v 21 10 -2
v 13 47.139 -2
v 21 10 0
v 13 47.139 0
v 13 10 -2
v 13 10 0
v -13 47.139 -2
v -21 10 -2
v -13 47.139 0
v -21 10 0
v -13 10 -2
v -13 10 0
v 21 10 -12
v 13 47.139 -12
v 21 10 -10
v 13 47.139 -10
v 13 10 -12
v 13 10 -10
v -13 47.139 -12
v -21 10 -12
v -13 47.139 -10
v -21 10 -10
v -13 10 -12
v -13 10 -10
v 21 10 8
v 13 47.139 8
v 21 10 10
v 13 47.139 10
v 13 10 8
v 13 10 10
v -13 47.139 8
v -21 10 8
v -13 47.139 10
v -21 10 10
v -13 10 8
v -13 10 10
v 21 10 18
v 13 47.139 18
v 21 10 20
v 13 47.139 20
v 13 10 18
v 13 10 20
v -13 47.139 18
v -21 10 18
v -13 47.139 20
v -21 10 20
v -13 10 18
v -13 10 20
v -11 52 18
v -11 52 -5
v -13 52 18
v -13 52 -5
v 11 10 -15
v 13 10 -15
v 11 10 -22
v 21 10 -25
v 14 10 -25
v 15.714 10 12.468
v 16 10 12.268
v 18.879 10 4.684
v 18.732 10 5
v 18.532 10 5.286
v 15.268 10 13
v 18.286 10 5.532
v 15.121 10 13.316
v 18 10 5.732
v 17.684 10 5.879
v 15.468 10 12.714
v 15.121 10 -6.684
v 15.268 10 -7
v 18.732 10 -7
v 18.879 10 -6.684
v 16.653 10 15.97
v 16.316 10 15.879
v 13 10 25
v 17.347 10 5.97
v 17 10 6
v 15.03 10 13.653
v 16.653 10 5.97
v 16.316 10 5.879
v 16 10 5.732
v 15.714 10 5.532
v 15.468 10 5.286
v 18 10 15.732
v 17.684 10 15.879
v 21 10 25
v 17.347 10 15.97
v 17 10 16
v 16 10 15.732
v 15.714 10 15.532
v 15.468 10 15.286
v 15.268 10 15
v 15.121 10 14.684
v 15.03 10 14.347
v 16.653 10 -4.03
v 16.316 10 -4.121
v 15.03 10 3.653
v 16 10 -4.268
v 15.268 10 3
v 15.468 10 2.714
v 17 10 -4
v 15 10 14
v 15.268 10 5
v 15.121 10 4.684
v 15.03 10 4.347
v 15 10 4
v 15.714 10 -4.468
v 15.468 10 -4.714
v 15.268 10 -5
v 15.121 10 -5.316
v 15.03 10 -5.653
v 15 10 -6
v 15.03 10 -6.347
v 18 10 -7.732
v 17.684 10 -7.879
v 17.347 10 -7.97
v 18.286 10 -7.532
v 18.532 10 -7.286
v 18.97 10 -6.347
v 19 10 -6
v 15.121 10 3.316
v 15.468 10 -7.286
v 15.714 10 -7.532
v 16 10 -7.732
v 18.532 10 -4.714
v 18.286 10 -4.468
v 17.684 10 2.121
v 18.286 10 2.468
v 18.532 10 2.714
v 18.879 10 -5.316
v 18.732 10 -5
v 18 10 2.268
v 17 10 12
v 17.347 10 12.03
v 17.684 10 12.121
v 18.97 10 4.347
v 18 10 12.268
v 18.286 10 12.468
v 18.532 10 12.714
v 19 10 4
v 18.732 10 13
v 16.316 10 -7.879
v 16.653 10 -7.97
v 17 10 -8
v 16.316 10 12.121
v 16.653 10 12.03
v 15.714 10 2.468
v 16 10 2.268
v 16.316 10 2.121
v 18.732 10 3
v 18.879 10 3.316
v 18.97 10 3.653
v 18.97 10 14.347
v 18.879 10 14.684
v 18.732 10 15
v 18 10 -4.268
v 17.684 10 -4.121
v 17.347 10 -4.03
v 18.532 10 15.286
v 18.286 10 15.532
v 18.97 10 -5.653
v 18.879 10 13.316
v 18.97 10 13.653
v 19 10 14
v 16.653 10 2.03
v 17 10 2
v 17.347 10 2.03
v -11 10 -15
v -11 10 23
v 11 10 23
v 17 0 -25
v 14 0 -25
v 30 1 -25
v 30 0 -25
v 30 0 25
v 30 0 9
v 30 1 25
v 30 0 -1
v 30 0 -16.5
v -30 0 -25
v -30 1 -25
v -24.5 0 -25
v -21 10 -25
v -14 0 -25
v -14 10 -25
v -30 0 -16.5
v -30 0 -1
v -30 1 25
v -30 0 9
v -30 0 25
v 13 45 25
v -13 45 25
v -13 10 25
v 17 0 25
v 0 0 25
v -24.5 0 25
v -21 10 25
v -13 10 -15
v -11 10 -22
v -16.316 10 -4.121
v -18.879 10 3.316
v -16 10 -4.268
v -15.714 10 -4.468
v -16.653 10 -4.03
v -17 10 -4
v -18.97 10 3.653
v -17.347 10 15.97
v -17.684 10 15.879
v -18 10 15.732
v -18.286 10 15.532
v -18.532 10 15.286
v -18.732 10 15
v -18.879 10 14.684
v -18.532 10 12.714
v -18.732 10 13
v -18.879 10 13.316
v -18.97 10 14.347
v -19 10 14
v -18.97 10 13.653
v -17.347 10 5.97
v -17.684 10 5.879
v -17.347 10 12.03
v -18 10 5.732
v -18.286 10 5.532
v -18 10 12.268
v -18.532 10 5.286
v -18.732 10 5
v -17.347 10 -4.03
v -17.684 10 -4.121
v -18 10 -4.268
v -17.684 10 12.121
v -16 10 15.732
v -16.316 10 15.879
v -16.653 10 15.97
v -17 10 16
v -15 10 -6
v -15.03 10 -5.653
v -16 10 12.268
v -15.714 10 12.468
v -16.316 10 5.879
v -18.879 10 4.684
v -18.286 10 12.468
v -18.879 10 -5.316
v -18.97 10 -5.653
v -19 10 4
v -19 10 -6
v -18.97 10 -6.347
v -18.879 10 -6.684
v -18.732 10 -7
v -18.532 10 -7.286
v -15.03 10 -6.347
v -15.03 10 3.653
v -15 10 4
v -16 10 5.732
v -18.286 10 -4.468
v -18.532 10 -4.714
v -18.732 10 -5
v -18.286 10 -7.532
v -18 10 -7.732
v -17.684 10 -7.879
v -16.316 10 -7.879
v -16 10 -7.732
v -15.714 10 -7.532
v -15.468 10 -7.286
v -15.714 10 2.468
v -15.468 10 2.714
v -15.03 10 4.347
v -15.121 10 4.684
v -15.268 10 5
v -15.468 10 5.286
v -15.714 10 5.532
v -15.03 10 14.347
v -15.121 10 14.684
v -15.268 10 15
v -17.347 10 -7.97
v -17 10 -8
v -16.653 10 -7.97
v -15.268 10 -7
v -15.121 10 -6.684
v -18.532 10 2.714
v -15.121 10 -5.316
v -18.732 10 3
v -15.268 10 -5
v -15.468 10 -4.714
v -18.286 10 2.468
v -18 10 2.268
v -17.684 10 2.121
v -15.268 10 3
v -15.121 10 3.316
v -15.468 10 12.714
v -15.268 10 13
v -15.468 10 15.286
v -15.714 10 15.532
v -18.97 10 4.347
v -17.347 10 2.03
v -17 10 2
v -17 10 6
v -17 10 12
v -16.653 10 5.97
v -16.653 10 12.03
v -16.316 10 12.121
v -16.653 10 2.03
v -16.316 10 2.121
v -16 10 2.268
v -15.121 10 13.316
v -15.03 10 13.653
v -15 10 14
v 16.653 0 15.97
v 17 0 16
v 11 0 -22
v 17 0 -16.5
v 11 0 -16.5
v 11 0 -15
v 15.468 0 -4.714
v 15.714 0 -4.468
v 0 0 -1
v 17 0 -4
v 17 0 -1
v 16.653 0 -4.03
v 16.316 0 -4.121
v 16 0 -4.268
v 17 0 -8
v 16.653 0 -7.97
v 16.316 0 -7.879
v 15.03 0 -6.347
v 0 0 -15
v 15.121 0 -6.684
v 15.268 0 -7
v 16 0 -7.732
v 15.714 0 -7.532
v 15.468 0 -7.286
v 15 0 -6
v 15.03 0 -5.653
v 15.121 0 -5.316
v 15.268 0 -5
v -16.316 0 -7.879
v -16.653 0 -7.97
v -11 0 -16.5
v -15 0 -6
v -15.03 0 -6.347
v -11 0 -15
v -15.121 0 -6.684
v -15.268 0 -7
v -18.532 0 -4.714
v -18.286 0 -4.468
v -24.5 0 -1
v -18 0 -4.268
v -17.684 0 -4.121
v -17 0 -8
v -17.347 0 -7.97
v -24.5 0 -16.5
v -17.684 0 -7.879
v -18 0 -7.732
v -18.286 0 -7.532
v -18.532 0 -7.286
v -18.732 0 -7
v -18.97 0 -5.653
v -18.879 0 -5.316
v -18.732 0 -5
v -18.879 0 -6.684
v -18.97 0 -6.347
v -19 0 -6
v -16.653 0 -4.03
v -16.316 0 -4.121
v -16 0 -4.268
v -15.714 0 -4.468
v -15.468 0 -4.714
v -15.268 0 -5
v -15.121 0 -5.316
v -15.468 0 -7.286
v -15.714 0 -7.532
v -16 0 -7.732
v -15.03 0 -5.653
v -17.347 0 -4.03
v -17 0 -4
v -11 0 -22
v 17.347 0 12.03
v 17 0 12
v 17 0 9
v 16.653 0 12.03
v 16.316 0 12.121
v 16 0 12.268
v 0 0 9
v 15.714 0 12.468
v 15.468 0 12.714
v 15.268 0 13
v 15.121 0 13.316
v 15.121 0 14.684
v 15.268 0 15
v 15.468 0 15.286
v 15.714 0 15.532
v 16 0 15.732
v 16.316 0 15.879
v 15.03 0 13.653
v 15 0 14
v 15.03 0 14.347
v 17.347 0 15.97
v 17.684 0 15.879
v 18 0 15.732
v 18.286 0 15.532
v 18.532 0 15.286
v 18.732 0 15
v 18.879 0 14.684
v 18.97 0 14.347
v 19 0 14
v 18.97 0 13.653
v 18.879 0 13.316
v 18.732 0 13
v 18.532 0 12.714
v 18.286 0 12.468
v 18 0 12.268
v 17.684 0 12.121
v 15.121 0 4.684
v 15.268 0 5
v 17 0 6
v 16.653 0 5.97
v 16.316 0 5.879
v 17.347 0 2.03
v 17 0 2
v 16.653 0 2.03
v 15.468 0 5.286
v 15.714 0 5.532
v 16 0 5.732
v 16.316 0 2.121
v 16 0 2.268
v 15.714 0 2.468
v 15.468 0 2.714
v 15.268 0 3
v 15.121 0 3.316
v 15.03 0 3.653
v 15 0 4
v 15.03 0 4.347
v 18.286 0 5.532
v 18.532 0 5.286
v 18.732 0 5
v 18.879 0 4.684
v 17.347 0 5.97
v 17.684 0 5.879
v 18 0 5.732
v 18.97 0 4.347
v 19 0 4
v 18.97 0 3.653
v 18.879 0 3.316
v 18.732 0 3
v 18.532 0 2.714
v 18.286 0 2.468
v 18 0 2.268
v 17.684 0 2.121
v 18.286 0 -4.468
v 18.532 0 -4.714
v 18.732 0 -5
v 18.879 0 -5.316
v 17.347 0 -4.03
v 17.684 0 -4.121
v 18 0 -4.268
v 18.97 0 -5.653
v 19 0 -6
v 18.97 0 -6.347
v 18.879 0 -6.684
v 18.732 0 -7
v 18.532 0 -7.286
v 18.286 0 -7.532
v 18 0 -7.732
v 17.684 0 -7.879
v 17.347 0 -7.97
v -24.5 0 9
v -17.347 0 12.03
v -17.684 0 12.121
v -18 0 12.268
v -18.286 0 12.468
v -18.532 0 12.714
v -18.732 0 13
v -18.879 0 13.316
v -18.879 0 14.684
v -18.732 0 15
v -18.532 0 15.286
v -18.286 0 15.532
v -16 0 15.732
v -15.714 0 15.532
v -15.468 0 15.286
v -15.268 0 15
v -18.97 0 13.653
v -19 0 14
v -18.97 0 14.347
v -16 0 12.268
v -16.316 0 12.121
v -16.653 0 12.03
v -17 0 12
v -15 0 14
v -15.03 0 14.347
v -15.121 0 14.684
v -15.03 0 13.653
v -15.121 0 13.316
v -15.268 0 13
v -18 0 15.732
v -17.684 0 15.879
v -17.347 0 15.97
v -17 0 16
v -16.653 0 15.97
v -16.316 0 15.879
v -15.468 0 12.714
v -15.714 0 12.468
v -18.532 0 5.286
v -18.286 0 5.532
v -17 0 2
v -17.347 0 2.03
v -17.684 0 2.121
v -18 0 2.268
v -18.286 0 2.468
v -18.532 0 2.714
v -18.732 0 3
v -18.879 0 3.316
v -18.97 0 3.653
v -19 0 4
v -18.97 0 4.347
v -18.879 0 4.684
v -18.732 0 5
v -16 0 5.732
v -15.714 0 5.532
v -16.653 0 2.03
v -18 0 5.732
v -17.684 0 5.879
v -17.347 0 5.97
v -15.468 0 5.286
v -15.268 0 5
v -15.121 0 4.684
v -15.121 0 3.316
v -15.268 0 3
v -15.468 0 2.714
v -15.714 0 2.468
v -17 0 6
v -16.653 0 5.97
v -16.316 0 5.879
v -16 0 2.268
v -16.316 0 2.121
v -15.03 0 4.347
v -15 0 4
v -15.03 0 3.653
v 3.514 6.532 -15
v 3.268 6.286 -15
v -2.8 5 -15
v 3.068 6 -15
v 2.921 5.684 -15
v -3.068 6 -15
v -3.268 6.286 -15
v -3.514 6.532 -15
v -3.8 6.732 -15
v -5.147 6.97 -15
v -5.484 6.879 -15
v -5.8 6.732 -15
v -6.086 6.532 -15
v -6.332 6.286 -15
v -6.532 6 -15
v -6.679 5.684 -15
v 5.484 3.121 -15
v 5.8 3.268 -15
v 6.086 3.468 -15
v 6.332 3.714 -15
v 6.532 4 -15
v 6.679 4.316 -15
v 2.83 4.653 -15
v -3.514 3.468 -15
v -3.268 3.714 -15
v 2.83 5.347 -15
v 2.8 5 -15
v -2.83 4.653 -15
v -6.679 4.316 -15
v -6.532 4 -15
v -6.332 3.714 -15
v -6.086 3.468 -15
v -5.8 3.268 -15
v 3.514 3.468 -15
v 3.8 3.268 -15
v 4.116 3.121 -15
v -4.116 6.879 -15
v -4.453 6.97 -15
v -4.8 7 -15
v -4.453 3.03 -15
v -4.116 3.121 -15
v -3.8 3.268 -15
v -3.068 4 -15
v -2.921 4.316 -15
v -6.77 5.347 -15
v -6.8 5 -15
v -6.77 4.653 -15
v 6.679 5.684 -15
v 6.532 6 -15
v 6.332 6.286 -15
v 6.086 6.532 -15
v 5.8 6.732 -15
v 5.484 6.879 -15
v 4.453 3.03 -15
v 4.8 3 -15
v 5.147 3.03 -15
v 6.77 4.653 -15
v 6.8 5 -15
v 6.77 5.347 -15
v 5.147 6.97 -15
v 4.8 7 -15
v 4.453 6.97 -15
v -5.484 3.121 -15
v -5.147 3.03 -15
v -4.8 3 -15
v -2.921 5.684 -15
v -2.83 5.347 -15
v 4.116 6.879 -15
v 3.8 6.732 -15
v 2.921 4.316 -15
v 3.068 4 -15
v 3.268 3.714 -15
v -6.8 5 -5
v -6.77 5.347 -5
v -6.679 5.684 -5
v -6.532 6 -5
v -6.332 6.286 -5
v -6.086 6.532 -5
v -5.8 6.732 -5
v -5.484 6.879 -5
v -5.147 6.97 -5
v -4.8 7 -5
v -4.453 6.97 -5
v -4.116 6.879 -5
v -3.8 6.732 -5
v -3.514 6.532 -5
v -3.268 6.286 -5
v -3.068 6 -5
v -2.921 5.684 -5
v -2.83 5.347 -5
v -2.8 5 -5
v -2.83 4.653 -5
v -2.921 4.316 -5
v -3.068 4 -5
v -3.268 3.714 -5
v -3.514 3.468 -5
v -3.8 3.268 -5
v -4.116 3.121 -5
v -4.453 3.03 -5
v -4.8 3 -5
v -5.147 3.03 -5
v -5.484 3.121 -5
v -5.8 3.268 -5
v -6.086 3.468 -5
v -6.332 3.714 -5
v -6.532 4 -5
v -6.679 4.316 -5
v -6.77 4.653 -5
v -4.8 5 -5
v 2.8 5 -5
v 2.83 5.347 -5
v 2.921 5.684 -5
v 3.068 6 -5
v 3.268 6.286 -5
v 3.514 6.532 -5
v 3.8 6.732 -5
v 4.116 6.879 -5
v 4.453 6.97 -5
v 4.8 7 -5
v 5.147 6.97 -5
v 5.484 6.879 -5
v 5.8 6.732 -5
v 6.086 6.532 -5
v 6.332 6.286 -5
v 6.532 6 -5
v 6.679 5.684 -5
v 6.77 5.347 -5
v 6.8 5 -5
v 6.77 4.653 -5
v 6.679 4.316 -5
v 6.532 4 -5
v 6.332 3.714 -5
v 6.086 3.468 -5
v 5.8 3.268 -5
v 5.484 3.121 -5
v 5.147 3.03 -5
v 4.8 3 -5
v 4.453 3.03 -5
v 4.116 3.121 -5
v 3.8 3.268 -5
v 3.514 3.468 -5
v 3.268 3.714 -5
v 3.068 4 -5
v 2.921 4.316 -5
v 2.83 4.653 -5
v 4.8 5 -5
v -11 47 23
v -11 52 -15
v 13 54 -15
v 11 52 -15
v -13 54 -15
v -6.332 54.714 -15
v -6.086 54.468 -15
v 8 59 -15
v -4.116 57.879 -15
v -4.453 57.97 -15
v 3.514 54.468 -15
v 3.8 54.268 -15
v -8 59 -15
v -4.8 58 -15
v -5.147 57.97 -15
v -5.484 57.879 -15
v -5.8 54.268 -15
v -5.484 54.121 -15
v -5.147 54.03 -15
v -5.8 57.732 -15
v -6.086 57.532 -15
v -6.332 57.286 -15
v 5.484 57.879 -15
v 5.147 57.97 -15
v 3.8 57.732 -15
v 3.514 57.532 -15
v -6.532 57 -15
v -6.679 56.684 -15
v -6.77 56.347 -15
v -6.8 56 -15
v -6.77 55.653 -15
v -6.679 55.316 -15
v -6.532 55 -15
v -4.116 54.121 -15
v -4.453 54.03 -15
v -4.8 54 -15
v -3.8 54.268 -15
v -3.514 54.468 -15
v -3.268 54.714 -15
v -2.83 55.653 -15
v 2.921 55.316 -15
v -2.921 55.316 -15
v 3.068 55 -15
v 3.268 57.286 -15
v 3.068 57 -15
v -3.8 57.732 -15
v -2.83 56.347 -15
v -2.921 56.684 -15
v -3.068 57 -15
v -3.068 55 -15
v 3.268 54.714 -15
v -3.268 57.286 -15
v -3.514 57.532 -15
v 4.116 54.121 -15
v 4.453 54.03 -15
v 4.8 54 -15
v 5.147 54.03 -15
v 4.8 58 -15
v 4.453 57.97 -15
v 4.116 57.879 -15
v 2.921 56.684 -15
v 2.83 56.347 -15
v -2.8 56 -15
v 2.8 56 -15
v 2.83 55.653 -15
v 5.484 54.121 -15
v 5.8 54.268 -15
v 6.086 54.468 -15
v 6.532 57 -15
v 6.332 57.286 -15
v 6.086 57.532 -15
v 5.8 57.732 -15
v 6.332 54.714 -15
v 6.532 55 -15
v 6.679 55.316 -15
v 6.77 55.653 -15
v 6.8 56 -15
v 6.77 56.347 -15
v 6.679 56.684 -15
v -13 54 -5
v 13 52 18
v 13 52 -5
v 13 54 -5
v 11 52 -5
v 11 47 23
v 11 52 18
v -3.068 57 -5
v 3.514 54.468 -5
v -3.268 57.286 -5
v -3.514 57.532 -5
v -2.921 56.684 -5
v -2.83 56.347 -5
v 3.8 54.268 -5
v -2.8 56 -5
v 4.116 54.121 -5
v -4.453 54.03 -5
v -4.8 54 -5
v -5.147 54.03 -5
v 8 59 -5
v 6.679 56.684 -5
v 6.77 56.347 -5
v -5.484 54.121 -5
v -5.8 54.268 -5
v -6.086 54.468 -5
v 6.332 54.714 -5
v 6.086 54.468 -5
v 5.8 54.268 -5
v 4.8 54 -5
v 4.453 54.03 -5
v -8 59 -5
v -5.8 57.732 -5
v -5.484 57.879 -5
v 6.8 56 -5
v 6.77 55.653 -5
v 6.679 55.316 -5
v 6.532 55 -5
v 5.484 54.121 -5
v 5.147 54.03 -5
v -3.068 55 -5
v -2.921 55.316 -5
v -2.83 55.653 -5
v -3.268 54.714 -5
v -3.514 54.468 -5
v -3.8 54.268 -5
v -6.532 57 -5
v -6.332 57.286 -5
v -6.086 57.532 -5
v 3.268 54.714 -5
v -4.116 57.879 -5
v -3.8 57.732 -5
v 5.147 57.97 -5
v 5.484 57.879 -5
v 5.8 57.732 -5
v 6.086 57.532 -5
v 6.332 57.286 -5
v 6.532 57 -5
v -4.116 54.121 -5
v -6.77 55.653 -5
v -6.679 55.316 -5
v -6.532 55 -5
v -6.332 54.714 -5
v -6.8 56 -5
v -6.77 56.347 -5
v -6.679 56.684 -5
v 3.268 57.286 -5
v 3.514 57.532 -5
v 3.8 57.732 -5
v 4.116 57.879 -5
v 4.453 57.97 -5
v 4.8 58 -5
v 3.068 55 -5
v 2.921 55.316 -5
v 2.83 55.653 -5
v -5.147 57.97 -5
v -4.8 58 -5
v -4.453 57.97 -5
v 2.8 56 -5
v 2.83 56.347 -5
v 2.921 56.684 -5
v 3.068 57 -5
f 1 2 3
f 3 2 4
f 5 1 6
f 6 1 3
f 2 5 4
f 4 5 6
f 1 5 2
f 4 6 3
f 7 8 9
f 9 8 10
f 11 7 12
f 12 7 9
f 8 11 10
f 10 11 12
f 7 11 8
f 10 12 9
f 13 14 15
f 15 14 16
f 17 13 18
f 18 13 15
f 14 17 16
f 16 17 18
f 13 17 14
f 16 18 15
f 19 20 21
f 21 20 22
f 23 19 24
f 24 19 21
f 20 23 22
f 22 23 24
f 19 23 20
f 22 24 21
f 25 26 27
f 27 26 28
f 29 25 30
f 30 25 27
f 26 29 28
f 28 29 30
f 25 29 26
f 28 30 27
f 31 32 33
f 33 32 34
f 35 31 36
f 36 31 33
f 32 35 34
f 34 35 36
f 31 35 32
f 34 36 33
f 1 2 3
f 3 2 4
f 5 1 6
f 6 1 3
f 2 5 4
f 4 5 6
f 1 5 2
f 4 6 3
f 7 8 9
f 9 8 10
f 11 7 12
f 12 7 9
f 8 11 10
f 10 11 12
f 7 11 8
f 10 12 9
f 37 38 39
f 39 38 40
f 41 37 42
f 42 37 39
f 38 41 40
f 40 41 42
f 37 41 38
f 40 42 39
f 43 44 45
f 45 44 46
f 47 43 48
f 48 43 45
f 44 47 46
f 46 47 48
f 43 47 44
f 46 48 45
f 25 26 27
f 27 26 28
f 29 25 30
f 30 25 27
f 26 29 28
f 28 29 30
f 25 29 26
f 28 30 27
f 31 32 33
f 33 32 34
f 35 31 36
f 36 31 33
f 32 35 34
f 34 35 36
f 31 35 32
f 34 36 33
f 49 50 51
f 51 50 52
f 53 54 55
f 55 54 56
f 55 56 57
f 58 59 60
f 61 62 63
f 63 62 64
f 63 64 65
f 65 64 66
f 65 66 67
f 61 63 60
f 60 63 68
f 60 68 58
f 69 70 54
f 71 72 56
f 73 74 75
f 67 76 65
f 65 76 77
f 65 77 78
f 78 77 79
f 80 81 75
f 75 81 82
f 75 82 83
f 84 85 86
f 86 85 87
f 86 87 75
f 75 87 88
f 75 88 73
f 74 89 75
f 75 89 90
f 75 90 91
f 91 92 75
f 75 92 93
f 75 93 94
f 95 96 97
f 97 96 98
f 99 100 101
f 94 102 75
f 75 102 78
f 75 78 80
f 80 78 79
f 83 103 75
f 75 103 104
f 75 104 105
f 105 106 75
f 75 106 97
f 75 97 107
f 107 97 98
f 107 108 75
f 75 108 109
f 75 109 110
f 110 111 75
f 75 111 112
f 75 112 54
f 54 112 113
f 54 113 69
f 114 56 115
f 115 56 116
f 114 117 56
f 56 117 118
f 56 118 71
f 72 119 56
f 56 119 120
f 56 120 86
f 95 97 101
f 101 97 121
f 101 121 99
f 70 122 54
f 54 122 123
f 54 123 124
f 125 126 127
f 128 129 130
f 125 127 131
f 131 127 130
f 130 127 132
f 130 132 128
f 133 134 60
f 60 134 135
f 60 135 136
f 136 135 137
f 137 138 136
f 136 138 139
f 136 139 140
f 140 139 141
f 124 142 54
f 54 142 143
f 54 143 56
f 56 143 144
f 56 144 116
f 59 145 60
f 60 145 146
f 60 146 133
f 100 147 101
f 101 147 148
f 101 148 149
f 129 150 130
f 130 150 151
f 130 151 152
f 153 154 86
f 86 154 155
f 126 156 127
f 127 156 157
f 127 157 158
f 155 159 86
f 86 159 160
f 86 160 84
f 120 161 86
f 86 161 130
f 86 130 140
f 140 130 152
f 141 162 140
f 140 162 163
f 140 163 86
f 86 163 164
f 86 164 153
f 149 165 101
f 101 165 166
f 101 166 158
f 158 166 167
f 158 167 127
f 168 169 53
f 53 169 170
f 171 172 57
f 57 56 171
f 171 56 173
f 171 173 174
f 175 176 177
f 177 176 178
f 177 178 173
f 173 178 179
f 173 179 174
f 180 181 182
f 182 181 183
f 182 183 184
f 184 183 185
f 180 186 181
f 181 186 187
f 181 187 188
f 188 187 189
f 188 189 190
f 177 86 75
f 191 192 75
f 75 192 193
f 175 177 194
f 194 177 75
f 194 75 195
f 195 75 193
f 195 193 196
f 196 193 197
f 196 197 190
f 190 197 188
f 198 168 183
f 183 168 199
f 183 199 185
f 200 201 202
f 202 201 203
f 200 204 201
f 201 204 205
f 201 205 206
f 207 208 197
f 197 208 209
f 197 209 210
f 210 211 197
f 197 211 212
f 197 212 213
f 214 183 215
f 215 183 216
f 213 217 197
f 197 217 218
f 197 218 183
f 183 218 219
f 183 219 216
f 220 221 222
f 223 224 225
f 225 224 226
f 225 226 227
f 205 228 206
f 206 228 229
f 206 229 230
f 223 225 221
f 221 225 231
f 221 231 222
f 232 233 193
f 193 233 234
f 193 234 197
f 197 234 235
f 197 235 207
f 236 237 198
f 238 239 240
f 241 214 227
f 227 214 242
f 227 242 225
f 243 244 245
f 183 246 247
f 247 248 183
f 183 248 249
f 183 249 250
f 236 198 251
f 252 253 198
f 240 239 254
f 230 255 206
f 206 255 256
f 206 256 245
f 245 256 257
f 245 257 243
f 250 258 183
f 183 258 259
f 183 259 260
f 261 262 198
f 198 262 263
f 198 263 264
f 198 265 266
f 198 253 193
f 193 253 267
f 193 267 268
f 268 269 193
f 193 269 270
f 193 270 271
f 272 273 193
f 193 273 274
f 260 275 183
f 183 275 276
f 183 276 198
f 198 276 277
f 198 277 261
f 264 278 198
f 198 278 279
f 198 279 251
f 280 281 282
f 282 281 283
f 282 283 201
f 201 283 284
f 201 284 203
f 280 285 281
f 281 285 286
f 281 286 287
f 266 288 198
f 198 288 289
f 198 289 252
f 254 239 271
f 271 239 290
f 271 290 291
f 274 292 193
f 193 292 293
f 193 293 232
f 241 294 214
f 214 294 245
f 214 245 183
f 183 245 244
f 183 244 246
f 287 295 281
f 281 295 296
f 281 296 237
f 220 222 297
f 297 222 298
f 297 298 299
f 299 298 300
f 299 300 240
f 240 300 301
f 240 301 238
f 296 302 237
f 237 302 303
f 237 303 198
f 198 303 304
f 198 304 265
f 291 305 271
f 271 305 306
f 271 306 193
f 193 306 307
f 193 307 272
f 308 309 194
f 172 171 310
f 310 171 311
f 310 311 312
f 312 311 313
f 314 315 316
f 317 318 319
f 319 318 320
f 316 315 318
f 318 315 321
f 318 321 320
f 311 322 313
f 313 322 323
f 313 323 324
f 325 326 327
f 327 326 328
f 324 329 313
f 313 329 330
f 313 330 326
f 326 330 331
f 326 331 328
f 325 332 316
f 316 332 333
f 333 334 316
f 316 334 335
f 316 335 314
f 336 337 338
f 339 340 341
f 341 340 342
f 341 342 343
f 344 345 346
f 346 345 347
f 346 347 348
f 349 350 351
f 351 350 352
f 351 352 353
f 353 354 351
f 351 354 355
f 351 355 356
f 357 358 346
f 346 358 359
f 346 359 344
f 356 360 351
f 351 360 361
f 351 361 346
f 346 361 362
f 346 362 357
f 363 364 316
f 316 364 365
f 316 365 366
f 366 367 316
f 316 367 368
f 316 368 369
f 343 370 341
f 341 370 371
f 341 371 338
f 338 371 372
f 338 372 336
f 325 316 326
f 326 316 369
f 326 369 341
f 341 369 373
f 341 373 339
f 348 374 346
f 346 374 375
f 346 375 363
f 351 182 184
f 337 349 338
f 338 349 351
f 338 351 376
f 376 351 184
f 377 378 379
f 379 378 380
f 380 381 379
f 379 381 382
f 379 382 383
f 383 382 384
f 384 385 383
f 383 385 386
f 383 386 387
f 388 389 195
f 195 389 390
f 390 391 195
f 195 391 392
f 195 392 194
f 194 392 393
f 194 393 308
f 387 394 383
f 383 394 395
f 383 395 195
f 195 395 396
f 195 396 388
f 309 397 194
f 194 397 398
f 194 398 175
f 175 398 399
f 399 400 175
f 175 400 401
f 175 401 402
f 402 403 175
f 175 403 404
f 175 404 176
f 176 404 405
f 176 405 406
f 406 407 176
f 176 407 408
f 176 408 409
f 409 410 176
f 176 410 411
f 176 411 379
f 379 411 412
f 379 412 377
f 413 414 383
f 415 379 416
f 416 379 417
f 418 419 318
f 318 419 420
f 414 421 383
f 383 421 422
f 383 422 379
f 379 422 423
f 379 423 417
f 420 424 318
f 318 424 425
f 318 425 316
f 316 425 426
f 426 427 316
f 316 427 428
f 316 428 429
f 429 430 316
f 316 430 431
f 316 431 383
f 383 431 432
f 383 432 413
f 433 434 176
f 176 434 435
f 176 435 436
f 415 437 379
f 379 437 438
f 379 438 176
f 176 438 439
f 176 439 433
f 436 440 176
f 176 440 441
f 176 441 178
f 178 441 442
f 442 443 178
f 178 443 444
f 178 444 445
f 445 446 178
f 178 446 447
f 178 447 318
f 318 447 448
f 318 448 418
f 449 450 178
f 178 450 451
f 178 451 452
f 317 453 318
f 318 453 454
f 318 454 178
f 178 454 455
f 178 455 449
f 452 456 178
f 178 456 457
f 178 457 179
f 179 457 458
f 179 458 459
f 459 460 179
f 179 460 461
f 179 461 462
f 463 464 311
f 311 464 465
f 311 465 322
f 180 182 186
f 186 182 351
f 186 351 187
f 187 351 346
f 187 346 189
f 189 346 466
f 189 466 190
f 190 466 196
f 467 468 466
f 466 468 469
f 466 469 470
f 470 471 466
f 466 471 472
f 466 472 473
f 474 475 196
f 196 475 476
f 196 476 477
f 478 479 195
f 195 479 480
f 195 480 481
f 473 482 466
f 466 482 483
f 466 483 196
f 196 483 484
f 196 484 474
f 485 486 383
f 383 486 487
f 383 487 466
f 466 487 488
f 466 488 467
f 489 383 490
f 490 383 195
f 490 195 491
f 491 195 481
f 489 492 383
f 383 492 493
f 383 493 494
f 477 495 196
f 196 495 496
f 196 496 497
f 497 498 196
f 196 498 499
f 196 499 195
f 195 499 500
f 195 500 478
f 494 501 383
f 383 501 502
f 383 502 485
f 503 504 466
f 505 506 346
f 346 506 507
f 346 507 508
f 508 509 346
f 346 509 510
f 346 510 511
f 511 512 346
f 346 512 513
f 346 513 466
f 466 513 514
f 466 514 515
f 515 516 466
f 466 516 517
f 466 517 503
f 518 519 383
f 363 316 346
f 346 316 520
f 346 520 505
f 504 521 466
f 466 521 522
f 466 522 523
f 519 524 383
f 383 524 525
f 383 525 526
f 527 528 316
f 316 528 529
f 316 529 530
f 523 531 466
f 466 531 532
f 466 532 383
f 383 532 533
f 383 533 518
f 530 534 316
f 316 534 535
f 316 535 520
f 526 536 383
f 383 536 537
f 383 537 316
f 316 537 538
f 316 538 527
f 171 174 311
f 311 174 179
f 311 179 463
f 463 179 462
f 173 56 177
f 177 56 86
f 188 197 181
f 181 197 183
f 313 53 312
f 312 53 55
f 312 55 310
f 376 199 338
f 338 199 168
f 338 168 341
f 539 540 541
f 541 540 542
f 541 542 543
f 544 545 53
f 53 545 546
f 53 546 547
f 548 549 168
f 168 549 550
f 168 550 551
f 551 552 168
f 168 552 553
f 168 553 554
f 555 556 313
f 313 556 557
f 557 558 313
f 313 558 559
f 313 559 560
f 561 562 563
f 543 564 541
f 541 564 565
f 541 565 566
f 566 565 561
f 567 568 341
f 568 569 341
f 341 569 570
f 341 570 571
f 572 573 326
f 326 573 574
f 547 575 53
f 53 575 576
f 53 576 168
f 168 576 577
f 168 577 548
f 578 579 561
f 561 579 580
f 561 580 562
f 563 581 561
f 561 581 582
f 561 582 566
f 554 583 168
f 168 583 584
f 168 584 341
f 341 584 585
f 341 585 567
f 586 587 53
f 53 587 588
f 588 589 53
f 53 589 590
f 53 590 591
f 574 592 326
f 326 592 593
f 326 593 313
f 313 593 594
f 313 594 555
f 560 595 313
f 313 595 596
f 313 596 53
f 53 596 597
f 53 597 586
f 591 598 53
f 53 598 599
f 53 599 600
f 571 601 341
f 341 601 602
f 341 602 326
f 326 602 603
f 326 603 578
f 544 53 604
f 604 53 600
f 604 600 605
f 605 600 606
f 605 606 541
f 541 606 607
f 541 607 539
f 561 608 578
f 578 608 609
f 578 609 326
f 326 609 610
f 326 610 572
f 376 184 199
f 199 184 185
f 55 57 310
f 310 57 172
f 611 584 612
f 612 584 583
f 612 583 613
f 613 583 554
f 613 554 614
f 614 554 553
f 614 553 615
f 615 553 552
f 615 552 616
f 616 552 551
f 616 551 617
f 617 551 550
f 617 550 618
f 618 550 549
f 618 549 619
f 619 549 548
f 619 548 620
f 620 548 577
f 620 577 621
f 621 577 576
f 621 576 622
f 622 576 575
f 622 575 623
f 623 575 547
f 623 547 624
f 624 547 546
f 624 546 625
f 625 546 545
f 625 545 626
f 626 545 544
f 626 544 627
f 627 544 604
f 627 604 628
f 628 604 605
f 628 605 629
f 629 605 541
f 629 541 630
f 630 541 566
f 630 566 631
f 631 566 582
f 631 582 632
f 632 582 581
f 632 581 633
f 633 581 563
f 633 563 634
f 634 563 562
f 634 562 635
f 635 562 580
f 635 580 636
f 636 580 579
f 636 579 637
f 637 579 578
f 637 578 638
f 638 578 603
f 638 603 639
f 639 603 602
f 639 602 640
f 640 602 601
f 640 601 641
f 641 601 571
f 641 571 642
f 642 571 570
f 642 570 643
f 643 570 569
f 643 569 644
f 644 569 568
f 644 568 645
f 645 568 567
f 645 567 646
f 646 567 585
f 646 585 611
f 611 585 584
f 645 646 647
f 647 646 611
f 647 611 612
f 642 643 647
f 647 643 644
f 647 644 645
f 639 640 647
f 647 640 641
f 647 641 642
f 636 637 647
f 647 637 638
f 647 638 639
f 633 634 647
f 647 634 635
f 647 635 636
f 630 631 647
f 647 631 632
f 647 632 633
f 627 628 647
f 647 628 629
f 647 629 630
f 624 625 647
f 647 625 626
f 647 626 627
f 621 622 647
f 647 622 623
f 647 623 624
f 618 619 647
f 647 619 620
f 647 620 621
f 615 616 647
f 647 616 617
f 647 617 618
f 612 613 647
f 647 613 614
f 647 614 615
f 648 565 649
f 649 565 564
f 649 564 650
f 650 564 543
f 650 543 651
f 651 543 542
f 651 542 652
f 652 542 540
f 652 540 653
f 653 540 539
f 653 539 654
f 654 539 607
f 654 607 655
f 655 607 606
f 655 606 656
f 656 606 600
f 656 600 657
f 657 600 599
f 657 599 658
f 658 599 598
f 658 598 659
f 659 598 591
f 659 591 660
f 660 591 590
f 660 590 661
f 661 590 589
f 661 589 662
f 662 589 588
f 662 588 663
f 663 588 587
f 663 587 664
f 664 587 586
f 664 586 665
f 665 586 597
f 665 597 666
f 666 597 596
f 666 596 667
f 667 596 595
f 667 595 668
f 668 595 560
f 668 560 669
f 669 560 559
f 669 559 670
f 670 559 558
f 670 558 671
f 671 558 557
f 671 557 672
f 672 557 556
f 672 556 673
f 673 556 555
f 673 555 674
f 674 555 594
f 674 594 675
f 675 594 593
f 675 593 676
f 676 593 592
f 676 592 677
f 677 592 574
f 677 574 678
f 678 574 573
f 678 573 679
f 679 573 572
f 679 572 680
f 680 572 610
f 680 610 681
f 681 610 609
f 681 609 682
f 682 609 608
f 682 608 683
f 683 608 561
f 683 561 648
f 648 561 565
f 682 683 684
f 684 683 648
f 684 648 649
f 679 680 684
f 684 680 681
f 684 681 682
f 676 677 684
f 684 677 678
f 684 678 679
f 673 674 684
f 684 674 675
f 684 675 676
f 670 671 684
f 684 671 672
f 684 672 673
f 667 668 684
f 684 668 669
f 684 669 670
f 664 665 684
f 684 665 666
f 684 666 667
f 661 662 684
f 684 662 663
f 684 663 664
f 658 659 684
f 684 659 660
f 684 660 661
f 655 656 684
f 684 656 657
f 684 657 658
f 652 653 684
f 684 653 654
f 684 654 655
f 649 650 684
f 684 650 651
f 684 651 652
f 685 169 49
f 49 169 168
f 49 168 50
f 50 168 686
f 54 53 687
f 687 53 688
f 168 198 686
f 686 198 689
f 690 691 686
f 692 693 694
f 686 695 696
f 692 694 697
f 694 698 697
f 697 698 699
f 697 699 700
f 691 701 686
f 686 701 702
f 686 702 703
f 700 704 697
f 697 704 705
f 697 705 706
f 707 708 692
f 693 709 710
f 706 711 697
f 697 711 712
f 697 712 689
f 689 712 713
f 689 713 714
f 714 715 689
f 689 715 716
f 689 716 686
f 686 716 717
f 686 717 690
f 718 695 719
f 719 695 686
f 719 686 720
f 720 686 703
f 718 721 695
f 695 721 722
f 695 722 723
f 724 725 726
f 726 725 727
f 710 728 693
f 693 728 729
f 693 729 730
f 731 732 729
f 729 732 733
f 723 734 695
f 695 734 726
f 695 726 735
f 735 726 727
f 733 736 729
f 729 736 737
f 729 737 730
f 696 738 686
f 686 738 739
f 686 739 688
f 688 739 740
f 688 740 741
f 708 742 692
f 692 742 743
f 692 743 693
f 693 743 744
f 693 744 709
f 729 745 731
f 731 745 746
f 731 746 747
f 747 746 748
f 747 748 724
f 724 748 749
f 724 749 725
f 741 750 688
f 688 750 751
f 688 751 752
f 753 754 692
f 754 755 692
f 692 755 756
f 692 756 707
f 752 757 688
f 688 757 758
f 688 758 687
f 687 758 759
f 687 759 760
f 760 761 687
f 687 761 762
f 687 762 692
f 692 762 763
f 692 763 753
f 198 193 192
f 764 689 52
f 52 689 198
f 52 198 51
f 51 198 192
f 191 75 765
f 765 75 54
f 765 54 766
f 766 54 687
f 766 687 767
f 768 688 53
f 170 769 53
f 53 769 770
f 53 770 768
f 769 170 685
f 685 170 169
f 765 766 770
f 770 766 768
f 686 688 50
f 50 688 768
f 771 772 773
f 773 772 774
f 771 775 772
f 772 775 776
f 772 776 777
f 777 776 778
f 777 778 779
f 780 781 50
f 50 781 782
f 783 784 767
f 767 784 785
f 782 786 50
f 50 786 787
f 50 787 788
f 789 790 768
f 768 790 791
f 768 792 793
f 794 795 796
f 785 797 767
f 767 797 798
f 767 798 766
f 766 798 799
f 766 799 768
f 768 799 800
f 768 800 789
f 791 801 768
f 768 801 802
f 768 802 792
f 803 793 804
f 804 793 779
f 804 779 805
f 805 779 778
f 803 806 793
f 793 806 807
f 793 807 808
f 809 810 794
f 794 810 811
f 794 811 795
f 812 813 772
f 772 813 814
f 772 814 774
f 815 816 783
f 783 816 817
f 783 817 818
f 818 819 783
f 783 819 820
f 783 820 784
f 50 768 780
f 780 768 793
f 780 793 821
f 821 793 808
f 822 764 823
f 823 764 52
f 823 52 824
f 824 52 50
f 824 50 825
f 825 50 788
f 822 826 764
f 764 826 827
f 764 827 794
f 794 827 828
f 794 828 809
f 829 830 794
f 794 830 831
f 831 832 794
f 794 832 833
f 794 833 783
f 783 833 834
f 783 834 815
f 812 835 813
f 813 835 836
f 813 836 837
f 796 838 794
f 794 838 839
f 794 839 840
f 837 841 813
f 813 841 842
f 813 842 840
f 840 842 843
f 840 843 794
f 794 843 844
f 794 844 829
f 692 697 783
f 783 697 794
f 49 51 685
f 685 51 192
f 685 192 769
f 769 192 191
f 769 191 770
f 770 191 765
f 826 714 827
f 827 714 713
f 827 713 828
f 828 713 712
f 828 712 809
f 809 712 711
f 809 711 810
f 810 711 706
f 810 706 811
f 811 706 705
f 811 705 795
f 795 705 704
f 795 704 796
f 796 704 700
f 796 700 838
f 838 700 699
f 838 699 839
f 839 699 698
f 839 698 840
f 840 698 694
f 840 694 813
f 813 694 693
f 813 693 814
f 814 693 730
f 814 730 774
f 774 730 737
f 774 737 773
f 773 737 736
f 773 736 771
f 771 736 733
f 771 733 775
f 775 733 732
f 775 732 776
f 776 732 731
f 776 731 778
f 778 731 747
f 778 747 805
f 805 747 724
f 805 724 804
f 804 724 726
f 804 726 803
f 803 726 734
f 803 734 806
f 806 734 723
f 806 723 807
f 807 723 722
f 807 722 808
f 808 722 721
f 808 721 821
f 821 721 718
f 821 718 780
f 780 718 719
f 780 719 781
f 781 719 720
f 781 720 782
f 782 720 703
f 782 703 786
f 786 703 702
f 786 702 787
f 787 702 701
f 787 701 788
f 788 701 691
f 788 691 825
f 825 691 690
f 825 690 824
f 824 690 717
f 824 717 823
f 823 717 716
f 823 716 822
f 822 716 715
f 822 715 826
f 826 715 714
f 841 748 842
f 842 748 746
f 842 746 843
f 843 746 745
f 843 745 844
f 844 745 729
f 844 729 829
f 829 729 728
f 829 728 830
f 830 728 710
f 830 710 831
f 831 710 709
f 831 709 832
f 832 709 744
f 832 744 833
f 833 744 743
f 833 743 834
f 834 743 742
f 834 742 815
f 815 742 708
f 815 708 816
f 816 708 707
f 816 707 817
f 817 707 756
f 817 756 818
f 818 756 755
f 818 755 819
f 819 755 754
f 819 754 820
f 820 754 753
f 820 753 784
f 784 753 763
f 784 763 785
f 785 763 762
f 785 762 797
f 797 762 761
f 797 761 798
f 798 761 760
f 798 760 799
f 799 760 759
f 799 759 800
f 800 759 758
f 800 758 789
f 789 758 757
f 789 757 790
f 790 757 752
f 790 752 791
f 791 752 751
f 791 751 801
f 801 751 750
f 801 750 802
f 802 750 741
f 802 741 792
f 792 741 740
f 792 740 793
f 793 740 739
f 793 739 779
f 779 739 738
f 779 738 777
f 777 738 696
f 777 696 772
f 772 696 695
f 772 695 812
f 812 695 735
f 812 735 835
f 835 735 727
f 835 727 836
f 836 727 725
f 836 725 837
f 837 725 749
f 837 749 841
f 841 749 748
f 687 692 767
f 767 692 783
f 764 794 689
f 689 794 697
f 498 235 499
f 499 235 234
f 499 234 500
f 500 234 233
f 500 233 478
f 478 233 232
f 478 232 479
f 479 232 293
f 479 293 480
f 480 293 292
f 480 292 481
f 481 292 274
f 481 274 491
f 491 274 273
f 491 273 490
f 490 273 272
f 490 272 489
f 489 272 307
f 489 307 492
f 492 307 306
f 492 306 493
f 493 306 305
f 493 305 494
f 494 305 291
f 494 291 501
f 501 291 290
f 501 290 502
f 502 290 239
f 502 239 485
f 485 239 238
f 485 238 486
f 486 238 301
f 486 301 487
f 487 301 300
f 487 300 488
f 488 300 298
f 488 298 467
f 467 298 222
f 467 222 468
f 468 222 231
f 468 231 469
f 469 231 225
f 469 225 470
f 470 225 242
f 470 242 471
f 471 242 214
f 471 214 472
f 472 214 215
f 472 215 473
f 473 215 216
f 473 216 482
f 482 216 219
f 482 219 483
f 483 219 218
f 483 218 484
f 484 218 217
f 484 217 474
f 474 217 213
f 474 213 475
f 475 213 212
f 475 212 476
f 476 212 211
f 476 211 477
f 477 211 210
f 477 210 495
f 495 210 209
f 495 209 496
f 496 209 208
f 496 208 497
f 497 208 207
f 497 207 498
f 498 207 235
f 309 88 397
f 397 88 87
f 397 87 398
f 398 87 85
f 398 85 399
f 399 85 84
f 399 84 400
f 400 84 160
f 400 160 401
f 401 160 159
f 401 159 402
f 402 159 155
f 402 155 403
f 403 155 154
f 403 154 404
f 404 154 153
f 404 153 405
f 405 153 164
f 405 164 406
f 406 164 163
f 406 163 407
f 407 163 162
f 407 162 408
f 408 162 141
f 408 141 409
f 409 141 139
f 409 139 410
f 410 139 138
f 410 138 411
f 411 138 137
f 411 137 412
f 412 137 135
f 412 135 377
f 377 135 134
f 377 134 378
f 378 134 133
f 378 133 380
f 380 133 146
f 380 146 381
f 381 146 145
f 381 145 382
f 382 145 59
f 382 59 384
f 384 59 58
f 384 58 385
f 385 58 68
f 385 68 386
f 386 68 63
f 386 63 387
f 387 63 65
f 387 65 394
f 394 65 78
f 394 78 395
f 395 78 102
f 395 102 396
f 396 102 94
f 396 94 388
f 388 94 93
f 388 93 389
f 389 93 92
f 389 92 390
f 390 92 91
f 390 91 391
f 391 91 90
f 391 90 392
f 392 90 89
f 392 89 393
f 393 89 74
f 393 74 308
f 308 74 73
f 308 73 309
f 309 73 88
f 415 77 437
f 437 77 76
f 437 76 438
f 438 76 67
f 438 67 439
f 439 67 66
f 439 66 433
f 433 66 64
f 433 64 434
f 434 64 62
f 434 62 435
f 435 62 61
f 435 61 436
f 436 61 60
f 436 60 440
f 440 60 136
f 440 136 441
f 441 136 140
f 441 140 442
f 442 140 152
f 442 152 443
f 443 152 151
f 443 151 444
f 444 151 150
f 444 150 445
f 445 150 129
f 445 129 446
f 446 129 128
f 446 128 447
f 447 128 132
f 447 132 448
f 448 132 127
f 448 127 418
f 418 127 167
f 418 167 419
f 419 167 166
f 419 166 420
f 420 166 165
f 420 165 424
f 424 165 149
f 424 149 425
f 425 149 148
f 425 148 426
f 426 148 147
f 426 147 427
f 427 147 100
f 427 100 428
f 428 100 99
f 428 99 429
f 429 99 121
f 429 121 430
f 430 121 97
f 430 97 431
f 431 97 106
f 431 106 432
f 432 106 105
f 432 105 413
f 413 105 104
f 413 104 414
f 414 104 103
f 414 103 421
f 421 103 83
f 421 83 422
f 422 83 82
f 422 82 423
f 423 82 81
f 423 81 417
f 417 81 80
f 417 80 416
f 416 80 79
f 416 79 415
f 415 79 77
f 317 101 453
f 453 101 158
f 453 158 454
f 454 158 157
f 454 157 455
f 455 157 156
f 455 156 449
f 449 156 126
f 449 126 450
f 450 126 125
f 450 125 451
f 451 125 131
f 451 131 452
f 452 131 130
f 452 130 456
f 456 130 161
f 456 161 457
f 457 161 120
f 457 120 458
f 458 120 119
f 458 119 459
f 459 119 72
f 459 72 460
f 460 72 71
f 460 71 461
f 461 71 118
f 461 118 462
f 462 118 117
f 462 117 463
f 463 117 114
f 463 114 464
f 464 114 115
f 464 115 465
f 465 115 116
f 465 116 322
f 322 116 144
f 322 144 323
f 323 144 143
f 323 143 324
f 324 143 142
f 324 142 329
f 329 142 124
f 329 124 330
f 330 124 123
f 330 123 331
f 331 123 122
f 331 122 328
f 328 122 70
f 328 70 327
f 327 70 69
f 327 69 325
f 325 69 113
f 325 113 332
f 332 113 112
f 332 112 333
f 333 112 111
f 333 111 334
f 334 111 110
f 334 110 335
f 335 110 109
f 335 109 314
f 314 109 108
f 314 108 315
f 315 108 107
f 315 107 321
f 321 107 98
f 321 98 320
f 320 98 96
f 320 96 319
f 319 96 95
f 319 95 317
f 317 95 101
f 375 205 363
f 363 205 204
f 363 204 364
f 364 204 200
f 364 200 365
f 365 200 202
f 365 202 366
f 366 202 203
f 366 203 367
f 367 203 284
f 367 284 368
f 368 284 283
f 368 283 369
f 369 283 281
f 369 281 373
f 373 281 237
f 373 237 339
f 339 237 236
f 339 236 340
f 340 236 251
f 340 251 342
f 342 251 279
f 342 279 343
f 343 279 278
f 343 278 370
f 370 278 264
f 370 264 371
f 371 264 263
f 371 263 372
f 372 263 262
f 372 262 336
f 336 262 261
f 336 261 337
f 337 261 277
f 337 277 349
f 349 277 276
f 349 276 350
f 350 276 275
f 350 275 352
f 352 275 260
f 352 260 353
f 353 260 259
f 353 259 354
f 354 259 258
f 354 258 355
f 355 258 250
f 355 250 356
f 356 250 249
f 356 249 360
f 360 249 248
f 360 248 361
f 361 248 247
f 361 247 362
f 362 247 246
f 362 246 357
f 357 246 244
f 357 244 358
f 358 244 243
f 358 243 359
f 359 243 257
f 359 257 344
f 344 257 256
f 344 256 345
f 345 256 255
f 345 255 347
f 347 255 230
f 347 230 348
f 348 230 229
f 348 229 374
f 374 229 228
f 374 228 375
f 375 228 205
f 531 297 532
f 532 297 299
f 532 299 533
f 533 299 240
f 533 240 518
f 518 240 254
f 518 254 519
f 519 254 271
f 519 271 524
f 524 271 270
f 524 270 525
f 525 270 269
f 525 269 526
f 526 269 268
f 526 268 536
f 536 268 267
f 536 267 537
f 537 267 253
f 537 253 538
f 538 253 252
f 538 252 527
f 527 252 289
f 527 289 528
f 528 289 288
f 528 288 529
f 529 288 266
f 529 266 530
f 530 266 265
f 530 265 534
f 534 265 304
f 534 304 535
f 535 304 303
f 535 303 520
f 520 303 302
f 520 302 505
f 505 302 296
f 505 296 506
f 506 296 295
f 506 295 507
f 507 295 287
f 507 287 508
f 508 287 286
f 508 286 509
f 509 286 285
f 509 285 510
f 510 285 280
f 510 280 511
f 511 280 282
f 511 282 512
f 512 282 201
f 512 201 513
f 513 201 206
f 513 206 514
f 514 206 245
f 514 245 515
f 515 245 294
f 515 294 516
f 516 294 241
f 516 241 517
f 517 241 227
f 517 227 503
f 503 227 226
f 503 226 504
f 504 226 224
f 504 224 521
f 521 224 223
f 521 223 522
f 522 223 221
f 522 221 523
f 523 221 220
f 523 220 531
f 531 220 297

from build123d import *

# Parameters (mm, degrees)
SKETCH1_W                 = 60
SKETCH1_H                 = 50
BOSS_EXTRUDE1_DEPTH       = 10
CHAMFER1_SIZE             = 9
SKETCH2_W                 = 22
SKETCH2_H                 = 20
CUT_EXTRUDE1_DEPTH        = 41.311288741
CHAMFER2_SIZE             = 3
SKETCH3_R                 = 2
CUT_EXTRUDE2_DEPTH        = 10
BOSS_EXTRUDE2_DEPTH       = 42
BOSS_EXTRUDE3_DEPTH       = 2
BOSS_EXTRUDE3_2_DEPTH     = 2
LPATTERN1_START           = 8
LPATTERN1_DEPTH           = 2
LPATTERN1_2_DEPTH         = 2
LPATTERN1_START_2         = 18
LPATTERN1_3_DEPTH         = 2
LPATTERN1_4_DEPTH         = 2
LPATTERN1_5_DEPTH         = 2
LPATTERN1_6_DEPTH         = 2
LPATTERN1_START_3         = -12
LPATTERN1_7_DEPTH         = 2
LPATTERN1_8_DEPTH         = 2
LPATTERN1_START_4         = -2
LPATTERN1_9_DEPTH         = 2
LPATTERN1_10_DEPTH        = 2
SKETCH6_W                 = 26
SKETCH6_H                 = 10
BOSS_EXTRUDE4_DEPTH       = 7
CHAMFER5_SIZE             = 7
SKETCH10_R                = 2
CUT_EXTRUDE4_DEPTH        = 78.336925204
CHAMFER6_SIZE             = 5
SKETCH11_R                = 2
CUT_EXTRUDE5_DEPTH        = 63.657800791
LPATTERN2_COUNT           = 3
LPATTERN2_PITCH           = 10
LPATTERN2_COPY_1_SKETCH_R = 2
LPATTERN2_COPY_1_DEPTH    = 63.657800791
LPATTERN2_COPY_2_SKETCH_R = 2
LPATTERN2_COPY_2_DEPTH    = 63.657800791


# Read off the part's stored shape, not the designer's step: LPattern1
with BuildPart() as part:
    # Sketch1 → Boss-Extrude1 (new body)
    with BuildSketch(Plane(origin=(0, 0, 0), x_dir=(1, 0, 0), z_dir=(0, 1, 0))):
        Rectangle(SKETCH1_W, SKETCH1_H)
    extrude(amount=BOSS_EXTRUDE1_DEPTH)

    # Chamfer1
    chamfer1_edges = [part.edges().sort_by_distance(p)[0] for p in [
        (-30, 10, 0),
        (30, 10, 0),
    ]]
    chamfer(chamfer1_edges, length=CHAMFER1_SIZE)

    # Sketch2 → Cut-Extrude1 (cut, through all)
    with BuildSketch(Plane(origin=(0, 10, 0), x_dir=(1, 0, 0), z_dir=(0, 1, 0))):
        with Locations((0, 25)):
            Rectangle(SKETCH2_W, SKETCH2_H)
    extrude(amount=-CUT_EXTRUDE1_DEPTH, mode=Mode.SUBTRACT)

    # Chamfer2
    chamfer2_edges = [part.edges().sort_by_distance(p)[0] for p in [
        (11, 5, -25),
        (-11, 5, -25),
    ]]
    chamfer(chamfer2_edges, length=CHAMFER2_SIZE)

    # Sketch3 → Cut-Extrude2 (cut)
    with BuildSketch(Plane(origin=(0, 0, -15), x_dir=(-1, 0, 0), z_dir=(0, 0, -1))):
        with Locations((-4.8, 5)):
            Circle(SKETCH3_R)
        with Locations((4.8, 5)):
            Circle(SKETCH3_R)
    extrude(amount=-CUT_EXTRUDE2_DEPTH, mode=Mode.SUBTRACT)

    # Sketch4 → Boss-Extrude2 (add)
    with BuildSketch(Plane(origin=(0, 10, 0), x_dir=(1, 0, 0), z_dir=(0, 1, 0))):
        Polygon((-11, 15), (-13, 15), (-13, -25), (-11, -25), (11, -25), (13, -25), (13, 15), (11, 15), (11, -23), (-11, -23), align=None)
    extrude(amount=BOSS_EXTRUDE2_DEPTH)

    # Sketch6 → Boss-Extrude4 (add)
    with BuildSketch(Plane(origin=(0, 52, 0), x_dir=(1, 0, 0), z_dir=(0, 1, 0))):
        with Locations((0, 10)):
            Rectangle(SKETCH6_W, SKETCH6_H)
    extrude(amount=BOSS_EXTRUDE4_DEPTH)

    # Chamfer5
    # the kernel refuses this chamfer: 7 mm, written as the material it takes off along each edge
    with BuildSketch(Plane(origin=(31.001780916, 52, 25), x_dir=(0, -0.9996219169112968, 0.02749587661058662), z_dir=(-1, 0, 0))) as chamfer5_piece_1:
        Polygon((CHAMFER5_SIZE * 0.999621916911, -CHAMFER5_SIZE * 0.0274958766106), (-CHAMFER5_SIZE * 0.0274958766106, -CHAMFER5_SIZE * 0.999621916911), (0, 0), align=None)
    extrude(amount=62.003561832, mode=Mode.SUBTRACT)

    # Sketch10 → Cut-Extrude4 (cut, through all)
    with BuildSketch(Plane(origin=(0, 0, -15), x_dir=(-1, 0, 0), z_dir=(0, 0, -1))):
        with Locations((-4.8, 56)):
            Circle(SKETCH10_R)
        with Locations((4.8, 56)):
            Circle(SKETCH10_R)
    extrude(amount=-CUT_EXTRUDE4_DEPTH, mode=Mode.SUBTRACT)

    # Chamfer6
    chamfer6_edges = [part.edges().sort_by_distance(p)[0] for p in [
        (-13, 59, -10),
        (13, 59, -10),
    ]]
    chamfer(chamfer6_edges, length=CHAMFER6_SIZE)

    # Sketch11 → Cut-Extrude5 (cut, through all)
    with BuildSketch(Plane(origin=(0, 10, 0), x_dir=(1, 0, 0), z_dir=(0, 1, 0))):
        with Locations(Location((-17, -14, 0), (0, 0, 270))):
            Circle(SKETCH11_R)
    cut_extrude5 = extrude(amount=-CUT_EXTRUDE5_DEPTH, mode=Mode.SUBTRACT)

    # Mirror4: Cut-Extrude5 across plane
    add(cut_extrude5.mirror(Plane(origin=(0, 0, 0), x_dir=(0, 0, 1), z_dir=(1, 0, 0))), mode=Mode.SUBTRACT)

    # LPattern2: Cut-Extrude5 ×3
    with Locations(*[(0, 0, -i * LPATTERN2_PITCH) for i in range(1, LPATTERN2_COUNT)]):
        add(cut_extrude5, mode=Mode.SUBTRACT)

    # LPattern2 copy 1 sketch → LPattern2 copy 1 (cut, through all)
    with BuildSketch(Plane(origin=(0, 10, -10), x_dir=(-1, 0, 0), z_dir=(0, 1, 0))):
        with Locations((-17, 14)):
            Circle(LPATTERN2_COPY_1_SKETCH_R)
    extrude(amount=-LPATTERN2_COPY_1_DEPTH, mode=Mode.SUBTRACT)

    # LPattern2 copy 2 sketch → LPattern2 copy 2 (cut, through all)
    with BuildSketch(Plane(origin=(0, 10, -20), x_dir=(-1, 0, 0), z_dir=(0, 1, 0))):
        with Locations((-17, 14)):
            Circle(LPATTERN2_COPY_2_SKETCH_R)
    extrude(amount=-LPATTERN2_COPY_2_DEPTH, mode=Mode.SUBTRACT)


with BuildPart() as body_2:
    # Sketch5 → Boss-Extrude3 (new body)
    with BuildSketch(Plane.XY):
        Polygon((21, 10), (13, 10), (13, 47.139248054), align=None)
    extrude(amount=-BOSS_EXTRUDE3_DEPTH)


with BuildPart() as body_3:
    # Sketch5 → Boss-Extrude3 2 (new body)
    with BuildSketch(Plane.XY):
        Polygon((-21, 10), (-13, 10), (-13, 47.139248054), align=None)
    extrude(amount=-BOSS_EXTRUDE3_2_DEPTH)


with BuildPart() as body_4:
    # LPattern1 outline → LPattern1 (new body)
    with BuildSketch(Plane.XY.offset(LPATTERN1_START)):
        Polygon((-13, 10), (-13, 47.139248054), (-21, 10), align=None)
    extrude(amount=LPATTERN1_DEPTH)


with BuildPart() as body_5:
    # LPattern1 2 outline → LPattern1 2 (new body)
    with BuildSketch(Plane.XY.offset(LPATTERN1_START)):
        Polygon((13, 10), (21, 10), (13, 47.139248054), align=None)
    extrude(amount=LPATTERN1_2_DEPTH)


with BuildPart() as body_6:
    # LPattern1 3 outline → LPattern1 3 (new body)
    with BuildSketch(Plane.XY.offset(LPATTERN1_START_2)):
        Polygon((-13, 10), (-13, 47.139248054), (-21, 10), align=None)
    extrude(amount=LPATTERN1_3_DEPTH)


with BuildPart() as body_7:
    # LPattern1 4 outline → LPattern1 4 (new body)
    with BuildSketch(Plane.XY.offset(LPATTERN1_START_2)):
        Polygon((13, 10), (21, 10), (13, 47.139248054), align=None)
    extrude(amount=LPATTERN1_4_DEPTH)


with BuildPart() as body_8:
    # LPattern1 5 outline → LPattern1 5 (new body)
    with BuildSketch(Plane.XY.offset(LPATTERN1_START)):
        Polygon((-13, 10), (-13, 47.139248054), (-21, 10), align=None)
    extrude(amount=LPATTERN1_5_DEPTH)


with BuildPart() as body_9:
    # LPattern1 6 outline → LPattern1 6 (new body)
    with BuildSketch(Plane.XY.offset(LPATTERN1_START)):
        Polygon((13, 10), (21, 10), (13, 47.139248054), align=None)
    extrude(amount=LPATTERN1_6_DEPTH)


with BuildPart() as body_10:
    # LPattern1 7 outline → LPattern1 7 (new body)
    with BuildSketch(Plane.XY.offset(LPATTERN1_START_3)):
        Polygon((-13, 10), (-13, 47.139248054), (-21, 10), align=None)
    extrude(amount=LPATTERN1_7_DEPTH)


with BuildPart() as body_11:
    # LPattern1 8 outline → LPattern1 8 (new body)
    with BuildSketch(Plane.XY.offset(LPATTERN1_START_3)):
        Polygon((13, 10), (21, 10), (13, 47.139248054), align=None)
    extrude(amount=LPATTERN1_8_DEPTH)


with BuildPart() as body_12:
    # LPattern1 9 outline → LPattern1 9 (new body)
    with BuildSketch(Plane.XY.offset(LPATTERN1_START_4)):
        Polygon((-13, 10), (-13, 47.139248054), (-21, 10), align=None)
    extrude(amount=LPATTERN1_9_DEPTH)


with BuildPart() as body_13:
    # LPattern1 10 outline → LPattern1 10 (new body)
    with BuildSketch(Plane.XY.offset(LPATTERN1_START_4)):
        Polygon((13, 10), (21, 10), (13, 47.139248054), align=None)
    extrude(amount=LPATTERN1_10_DEPTH)


solid = Compound([part.part, body_2.part, body_3.part, body_4.part, body_5.part, body_6.part, body_7.part, body_8.part, body_9.part, body_10.part, body_11.part, body_12.part, body_13.part])
